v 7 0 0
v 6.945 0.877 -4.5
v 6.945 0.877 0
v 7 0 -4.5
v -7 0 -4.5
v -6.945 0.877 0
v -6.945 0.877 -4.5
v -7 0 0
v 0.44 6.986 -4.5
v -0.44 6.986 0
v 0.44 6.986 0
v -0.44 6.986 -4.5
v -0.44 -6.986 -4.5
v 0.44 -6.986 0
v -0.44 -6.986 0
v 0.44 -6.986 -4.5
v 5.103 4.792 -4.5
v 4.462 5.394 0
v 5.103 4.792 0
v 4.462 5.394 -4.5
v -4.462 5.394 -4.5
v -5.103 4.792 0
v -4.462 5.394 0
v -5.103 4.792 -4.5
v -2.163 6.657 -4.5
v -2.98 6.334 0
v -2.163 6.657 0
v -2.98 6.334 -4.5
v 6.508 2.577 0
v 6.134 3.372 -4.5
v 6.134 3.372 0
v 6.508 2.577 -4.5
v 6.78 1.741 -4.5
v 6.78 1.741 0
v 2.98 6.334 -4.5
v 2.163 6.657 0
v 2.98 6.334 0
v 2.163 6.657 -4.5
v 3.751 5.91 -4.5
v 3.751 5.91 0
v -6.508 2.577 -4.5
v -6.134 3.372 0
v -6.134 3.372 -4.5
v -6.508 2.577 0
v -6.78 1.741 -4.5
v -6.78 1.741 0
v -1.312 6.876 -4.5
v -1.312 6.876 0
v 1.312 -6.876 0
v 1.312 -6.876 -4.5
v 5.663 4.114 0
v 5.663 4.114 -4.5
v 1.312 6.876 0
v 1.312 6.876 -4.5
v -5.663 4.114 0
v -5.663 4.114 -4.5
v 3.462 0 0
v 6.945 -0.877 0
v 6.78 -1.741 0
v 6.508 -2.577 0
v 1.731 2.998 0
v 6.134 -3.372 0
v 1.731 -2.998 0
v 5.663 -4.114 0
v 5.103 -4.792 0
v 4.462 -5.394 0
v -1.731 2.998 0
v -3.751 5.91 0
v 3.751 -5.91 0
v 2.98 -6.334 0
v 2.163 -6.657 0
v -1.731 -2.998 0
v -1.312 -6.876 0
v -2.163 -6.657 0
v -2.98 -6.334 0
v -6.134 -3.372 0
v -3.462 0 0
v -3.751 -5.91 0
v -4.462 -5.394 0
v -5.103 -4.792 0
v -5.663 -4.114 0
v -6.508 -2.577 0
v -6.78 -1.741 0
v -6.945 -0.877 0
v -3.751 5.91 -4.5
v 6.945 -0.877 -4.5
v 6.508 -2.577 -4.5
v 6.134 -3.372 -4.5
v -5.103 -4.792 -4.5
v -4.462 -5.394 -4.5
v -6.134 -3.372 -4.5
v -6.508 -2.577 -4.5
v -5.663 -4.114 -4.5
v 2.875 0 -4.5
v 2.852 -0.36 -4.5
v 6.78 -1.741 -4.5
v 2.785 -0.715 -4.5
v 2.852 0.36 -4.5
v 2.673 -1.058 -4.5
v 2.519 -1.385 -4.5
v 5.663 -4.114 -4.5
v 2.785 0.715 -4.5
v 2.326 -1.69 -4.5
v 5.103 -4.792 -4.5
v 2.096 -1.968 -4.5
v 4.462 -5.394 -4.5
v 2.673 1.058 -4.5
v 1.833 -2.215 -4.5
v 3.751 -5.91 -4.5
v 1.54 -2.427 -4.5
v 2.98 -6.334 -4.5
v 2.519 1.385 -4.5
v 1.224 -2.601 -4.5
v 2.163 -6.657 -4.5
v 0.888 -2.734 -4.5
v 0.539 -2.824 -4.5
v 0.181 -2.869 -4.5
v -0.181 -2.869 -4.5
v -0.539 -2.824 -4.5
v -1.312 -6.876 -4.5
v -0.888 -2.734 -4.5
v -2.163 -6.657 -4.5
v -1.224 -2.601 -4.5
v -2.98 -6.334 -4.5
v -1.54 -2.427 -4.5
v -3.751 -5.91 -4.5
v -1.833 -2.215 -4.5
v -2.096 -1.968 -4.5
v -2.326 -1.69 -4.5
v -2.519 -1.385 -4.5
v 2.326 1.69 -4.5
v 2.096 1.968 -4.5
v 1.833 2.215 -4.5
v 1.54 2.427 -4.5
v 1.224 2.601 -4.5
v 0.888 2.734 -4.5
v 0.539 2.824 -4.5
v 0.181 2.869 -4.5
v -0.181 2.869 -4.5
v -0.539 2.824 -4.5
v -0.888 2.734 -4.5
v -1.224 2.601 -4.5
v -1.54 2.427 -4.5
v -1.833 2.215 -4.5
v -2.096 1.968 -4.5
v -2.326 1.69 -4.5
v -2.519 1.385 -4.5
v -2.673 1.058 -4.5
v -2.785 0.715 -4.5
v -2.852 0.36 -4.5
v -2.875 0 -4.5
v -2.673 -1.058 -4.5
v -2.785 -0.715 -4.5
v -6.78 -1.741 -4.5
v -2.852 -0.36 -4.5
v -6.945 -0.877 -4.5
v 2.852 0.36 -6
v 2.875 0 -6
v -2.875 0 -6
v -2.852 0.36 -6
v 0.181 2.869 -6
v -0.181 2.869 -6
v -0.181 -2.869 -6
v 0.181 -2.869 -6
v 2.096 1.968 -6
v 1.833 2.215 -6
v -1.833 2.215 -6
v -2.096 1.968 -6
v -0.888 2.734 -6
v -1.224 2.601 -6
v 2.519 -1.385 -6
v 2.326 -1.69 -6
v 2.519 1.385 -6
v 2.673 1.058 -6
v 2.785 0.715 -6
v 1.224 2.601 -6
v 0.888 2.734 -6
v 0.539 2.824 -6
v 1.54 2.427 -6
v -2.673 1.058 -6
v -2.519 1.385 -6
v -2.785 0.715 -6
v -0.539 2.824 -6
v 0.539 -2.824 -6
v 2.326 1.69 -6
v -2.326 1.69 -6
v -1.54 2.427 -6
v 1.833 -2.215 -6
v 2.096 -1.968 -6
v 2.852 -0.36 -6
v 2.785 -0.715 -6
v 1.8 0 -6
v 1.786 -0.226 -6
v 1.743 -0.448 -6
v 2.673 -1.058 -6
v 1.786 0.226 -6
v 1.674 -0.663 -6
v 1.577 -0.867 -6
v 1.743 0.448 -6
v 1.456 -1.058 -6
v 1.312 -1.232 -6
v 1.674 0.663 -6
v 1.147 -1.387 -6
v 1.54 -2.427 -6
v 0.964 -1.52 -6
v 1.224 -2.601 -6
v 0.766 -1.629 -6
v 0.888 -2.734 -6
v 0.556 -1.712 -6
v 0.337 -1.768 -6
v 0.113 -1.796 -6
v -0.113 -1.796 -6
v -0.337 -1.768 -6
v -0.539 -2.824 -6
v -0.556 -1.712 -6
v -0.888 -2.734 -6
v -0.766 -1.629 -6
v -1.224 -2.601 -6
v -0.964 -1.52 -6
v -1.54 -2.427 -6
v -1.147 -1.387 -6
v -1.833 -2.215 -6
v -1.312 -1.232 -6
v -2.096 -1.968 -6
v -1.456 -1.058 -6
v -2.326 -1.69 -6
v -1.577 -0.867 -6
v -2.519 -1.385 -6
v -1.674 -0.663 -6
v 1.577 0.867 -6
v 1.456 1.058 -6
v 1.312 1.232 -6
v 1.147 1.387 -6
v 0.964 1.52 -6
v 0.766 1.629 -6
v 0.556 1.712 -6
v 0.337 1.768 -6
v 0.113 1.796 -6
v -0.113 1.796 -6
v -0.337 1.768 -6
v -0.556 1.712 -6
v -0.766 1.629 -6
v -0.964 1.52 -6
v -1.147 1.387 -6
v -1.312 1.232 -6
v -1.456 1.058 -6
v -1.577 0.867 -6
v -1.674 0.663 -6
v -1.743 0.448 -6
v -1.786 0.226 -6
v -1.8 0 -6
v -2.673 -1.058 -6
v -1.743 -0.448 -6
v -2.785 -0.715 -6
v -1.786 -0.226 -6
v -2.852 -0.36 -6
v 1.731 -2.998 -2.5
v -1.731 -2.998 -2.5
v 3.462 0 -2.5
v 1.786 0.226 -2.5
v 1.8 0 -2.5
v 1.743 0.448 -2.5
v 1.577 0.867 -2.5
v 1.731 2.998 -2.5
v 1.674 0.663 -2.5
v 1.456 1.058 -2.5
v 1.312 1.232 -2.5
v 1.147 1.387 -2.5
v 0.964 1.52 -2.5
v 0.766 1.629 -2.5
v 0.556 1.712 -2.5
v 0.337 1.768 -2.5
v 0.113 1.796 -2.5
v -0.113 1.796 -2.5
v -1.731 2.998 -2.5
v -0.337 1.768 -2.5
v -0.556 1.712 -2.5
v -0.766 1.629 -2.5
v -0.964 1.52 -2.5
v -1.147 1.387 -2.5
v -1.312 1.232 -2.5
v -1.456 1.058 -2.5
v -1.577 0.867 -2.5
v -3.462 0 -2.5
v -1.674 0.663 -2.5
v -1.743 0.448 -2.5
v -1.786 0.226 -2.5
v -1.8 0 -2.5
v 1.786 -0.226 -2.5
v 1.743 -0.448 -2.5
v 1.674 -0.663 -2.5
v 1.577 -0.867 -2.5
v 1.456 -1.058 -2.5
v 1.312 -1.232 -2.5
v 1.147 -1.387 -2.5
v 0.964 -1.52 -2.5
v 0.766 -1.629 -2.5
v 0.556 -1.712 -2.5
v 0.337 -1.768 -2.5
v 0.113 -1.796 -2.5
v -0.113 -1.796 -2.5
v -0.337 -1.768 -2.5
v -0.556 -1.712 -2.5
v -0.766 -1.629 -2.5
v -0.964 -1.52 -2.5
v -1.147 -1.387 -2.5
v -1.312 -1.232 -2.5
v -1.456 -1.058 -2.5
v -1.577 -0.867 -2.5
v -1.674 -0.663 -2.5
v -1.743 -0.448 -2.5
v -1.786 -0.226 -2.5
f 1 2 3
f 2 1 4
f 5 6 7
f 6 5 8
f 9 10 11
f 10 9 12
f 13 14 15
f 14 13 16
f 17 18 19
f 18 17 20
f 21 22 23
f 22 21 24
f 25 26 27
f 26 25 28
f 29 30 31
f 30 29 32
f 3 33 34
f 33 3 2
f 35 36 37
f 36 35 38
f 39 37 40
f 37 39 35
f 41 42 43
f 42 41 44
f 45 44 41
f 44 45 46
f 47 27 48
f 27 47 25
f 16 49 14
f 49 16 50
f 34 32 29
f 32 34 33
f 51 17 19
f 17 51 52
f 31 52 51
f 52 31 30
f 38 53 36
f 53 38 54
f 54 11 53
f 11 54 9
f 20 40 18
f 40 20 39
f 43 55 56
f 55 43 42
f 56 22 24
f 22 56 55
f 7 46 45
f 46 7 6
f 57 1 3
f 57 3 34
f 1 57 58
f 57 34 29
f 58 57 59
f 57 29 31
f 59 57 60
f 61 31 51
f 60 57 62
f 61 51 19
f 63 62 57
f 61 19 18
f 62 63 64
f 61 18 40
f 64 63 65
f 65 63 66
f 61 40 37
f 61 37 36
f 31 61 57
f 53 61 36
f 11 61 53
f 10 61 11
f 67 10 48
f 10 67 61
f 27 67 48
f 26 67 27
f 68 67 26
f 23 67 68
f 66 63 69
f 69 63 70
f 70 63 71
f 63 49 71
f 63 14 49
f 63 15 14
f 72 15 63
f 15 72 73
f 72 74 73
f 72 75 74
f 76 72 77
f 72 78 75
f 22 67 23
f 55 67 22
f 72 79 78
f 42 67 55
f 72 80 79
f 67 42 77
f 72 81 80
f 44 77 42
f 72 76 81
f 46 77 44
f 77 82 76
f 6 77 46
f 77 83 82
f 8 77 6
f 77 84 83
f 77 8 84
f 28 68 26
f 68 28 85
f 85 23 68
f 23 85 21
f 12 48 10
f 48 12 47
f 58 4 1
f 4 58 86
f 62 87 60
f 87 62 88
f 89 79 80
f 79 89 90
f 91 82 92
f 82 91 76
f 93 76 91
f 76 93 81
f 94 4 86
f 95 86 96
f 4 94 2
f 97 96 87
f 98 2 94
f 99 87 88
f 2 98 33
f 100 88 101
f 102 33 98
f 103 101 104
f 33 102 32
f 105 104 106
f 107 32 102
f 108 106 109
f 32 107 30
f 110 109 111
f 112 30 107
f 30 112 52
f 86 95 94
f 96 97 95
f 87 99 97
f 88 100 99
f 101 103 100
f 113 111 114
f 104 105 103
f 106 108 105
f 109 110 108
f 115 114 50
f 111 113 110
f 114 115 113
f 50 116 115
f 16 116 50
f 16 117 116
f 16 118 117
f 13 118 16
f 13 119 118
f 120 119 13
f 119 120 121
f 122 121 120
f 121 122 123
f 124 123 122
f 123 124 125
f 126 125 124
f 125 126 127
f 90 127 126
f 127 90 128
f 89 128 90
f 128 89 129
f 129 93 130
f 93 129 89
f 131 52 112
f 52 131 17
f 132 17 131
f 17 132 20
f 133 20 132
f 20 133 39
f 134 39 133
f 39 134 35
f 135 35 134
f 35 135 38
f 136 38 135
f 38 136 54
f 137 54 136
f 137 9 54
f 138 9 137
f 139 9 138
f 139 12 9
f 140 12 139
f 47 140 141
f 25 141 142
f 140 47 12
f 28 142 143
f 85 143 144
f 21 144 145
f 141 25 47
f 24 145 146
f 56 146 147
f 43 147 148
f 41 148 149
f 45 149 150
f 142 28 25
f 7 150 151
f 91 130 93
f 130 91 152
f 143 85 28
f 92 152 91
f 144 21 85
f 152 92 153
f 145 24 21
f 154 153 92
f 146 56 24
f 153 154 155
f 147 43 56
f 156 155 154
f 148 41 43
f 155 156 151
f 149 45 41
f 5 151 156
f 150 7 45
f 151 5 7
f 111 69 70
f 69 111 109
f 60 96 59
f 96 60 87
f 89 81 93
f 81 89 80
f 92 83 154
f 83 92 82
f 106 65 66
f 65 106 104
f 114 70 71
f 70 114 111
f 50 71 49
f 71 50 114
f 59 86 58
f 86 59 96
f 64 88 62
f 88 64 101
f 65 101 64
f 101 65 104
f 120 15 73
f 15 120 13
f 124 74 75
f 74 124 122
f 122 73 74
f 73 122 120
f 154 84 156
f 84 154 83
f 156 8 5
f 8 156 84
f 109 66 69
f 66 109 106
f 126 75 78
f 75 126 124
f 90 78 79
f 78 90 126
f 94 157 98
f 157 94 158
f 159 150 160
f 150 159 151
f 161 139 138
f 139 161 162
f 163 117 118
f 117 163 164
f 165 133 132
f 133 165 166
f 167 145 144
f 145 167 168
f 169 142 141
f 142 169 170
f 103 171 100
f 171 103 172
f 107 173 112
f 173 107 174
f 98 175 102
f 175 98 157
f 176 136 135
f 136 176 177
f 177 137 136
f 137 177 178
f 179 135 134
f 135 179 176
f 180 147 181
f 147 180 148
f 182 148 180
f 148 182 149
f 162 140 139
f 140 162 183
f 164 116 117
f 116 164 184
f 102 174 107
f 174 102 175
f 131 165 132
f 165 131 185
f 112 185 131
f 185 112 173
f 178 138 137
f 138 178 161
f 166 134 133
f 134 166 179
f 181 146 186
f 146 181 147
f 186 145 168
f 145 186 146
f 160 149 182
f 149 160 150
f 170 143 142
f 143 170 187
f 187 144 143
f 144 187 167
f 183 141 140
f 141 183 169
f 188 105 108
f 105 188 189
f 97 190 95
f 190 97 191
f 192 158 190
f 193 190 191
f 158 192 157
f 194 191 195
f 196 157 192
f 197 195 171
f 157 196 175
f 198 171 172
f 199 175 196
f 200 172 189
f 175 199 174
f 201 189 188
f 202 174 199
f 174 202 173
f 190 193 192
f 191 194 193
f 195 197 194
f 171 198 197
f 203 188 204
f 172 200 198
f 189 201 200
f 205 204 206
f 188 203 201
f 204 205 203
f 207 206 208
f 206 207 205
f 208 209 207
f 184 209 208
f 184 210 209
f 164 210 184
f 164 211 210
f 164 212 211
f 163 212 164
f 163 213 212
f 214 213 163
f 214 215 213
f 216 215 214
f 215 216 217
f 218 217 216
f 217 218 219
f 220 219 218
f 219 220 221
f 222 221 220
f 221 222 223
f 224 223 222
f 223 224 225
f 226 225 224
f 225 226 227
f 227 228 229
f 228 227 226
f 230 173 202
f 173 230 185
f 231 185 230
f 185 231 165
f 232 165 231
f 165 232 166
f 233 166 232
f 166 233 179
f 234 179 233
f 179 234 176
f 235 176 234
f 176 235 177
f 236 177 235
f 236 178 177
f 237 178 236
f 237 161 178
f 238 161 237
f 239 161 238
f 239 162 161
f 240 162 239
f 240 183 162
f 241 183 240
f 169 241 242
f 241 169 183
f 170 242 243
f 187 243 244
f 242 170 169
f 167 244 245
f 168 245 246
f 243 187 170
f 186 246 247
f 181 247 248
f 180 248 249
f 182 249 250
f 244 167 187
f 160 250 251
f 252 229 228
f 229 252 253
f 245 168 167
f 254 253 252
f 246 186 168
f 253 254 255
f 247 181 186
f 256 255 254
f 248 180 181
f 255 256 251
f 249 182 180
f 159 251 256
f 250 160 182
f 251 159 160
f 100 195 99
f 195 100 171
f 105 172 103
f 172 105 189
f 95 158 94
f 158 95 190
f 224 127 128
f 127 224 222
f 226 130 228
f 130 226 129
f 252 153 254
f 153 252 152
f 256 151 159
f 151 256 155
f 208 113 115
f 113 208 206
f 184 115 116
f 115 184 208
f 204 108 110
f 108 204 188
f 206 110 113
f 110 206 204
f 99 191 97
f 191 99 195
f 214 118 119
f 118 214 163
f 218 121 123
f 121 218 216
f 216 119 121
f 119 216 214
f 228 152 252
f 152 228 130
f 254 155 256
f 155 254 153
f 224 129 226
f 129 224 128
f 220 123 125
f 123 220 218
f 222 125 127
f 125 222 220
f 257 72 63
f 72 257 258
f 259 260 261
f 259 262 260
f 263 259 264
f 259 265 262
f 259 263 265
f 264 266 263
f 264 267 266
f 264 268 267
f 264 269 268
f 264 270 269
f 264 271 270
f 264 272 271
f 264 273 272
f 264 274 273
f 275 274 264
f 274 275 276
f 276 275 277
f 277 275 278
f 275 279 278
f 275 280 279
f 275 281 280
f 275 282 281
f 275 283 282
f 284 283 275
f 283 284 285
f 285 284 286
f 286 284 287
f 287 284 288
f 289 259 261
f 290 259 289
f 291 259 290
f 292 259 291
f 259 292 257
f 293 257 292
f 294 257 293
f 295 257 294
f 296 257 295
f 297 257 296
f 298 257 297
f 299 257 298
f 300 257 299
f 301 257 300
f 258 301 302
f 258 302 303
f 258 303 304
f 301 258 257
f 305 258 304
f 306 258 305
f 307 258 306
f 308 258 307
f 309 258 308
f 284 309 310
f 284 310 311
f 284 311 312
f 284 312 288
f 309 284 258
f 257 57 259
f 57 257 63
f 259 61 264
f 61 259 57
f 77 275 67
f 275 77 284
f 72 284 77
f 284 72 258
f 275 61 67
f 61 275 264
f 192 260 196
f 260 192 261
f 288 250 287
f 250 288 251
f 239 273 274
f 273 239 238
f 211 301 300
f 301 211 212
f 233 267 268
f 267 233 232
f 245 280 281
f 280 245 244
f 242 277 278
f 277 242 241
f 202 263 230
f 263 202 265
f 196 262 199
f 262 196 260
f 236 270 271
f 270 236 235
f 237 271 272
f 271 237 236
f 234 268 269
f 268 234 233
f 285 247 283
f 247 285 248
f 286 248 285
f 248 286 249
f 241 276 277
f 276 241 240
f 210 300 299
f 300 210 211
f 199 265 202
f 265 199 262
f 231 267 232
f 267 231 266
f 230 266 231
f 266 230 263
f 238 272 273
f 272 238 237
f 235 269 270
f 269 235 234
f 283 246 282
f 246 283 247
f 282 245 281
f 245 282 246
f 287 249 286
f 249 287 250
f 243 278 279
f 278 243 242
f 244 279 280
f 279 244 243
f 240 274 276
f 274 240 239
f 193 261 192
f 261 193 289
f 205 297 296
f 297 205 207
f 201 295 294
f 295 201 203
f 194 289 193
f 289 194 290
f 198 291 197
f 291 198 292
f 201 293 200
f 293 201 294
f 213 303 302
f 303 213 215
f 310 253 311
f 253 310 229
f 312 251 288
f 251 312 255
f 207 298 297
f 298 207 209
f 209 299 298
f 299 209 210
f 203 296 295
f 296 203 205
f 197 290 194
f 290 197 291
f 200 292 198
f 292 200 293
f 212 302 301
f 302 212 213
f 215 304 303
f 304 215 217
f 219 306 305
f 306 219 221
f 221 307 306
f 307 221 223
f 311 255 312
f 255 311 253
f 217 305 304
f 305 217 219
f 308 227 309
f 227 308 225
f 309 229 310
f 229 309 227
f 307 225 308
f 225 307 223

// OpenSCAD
$fn = 50;


difference() {
	union() {
		translate(v = [0, 0, -4.5000000000]) {
			cylinder(h = 4.5000000000, r = 7.0000000000);
		}
		translate(v = [0, 0, -6.0000000000]) {
			cylinder(h = 6, r = 2.8750000000);
		}
	}
	union() {
		translate(v = [0, 0, 0]) {
			rotate(a = [0, 0, 0]) {
				difference() {
					union() {
						translate(v = [0, 0, -2.5000000000]) {
							linear_extrude(height = 2.5000000000) {
								polygon(points = [[3.4620000000, 0.0000000000], [1.7310000000, 2.9981799479], [-1.7310000000, 2.9981799479], [-3.4620000000, 0.0000000000], [-1.7310000000, -2.9981799479], [1.7310000000, -2.9981799479]]);
							}
						}
					}
					union();
				}
			}
		}
		#translate(v = [0, 0, -100.0000000000]) {
			cylinder(h = 200, r = 1.8000000000);
		}
	}
}
